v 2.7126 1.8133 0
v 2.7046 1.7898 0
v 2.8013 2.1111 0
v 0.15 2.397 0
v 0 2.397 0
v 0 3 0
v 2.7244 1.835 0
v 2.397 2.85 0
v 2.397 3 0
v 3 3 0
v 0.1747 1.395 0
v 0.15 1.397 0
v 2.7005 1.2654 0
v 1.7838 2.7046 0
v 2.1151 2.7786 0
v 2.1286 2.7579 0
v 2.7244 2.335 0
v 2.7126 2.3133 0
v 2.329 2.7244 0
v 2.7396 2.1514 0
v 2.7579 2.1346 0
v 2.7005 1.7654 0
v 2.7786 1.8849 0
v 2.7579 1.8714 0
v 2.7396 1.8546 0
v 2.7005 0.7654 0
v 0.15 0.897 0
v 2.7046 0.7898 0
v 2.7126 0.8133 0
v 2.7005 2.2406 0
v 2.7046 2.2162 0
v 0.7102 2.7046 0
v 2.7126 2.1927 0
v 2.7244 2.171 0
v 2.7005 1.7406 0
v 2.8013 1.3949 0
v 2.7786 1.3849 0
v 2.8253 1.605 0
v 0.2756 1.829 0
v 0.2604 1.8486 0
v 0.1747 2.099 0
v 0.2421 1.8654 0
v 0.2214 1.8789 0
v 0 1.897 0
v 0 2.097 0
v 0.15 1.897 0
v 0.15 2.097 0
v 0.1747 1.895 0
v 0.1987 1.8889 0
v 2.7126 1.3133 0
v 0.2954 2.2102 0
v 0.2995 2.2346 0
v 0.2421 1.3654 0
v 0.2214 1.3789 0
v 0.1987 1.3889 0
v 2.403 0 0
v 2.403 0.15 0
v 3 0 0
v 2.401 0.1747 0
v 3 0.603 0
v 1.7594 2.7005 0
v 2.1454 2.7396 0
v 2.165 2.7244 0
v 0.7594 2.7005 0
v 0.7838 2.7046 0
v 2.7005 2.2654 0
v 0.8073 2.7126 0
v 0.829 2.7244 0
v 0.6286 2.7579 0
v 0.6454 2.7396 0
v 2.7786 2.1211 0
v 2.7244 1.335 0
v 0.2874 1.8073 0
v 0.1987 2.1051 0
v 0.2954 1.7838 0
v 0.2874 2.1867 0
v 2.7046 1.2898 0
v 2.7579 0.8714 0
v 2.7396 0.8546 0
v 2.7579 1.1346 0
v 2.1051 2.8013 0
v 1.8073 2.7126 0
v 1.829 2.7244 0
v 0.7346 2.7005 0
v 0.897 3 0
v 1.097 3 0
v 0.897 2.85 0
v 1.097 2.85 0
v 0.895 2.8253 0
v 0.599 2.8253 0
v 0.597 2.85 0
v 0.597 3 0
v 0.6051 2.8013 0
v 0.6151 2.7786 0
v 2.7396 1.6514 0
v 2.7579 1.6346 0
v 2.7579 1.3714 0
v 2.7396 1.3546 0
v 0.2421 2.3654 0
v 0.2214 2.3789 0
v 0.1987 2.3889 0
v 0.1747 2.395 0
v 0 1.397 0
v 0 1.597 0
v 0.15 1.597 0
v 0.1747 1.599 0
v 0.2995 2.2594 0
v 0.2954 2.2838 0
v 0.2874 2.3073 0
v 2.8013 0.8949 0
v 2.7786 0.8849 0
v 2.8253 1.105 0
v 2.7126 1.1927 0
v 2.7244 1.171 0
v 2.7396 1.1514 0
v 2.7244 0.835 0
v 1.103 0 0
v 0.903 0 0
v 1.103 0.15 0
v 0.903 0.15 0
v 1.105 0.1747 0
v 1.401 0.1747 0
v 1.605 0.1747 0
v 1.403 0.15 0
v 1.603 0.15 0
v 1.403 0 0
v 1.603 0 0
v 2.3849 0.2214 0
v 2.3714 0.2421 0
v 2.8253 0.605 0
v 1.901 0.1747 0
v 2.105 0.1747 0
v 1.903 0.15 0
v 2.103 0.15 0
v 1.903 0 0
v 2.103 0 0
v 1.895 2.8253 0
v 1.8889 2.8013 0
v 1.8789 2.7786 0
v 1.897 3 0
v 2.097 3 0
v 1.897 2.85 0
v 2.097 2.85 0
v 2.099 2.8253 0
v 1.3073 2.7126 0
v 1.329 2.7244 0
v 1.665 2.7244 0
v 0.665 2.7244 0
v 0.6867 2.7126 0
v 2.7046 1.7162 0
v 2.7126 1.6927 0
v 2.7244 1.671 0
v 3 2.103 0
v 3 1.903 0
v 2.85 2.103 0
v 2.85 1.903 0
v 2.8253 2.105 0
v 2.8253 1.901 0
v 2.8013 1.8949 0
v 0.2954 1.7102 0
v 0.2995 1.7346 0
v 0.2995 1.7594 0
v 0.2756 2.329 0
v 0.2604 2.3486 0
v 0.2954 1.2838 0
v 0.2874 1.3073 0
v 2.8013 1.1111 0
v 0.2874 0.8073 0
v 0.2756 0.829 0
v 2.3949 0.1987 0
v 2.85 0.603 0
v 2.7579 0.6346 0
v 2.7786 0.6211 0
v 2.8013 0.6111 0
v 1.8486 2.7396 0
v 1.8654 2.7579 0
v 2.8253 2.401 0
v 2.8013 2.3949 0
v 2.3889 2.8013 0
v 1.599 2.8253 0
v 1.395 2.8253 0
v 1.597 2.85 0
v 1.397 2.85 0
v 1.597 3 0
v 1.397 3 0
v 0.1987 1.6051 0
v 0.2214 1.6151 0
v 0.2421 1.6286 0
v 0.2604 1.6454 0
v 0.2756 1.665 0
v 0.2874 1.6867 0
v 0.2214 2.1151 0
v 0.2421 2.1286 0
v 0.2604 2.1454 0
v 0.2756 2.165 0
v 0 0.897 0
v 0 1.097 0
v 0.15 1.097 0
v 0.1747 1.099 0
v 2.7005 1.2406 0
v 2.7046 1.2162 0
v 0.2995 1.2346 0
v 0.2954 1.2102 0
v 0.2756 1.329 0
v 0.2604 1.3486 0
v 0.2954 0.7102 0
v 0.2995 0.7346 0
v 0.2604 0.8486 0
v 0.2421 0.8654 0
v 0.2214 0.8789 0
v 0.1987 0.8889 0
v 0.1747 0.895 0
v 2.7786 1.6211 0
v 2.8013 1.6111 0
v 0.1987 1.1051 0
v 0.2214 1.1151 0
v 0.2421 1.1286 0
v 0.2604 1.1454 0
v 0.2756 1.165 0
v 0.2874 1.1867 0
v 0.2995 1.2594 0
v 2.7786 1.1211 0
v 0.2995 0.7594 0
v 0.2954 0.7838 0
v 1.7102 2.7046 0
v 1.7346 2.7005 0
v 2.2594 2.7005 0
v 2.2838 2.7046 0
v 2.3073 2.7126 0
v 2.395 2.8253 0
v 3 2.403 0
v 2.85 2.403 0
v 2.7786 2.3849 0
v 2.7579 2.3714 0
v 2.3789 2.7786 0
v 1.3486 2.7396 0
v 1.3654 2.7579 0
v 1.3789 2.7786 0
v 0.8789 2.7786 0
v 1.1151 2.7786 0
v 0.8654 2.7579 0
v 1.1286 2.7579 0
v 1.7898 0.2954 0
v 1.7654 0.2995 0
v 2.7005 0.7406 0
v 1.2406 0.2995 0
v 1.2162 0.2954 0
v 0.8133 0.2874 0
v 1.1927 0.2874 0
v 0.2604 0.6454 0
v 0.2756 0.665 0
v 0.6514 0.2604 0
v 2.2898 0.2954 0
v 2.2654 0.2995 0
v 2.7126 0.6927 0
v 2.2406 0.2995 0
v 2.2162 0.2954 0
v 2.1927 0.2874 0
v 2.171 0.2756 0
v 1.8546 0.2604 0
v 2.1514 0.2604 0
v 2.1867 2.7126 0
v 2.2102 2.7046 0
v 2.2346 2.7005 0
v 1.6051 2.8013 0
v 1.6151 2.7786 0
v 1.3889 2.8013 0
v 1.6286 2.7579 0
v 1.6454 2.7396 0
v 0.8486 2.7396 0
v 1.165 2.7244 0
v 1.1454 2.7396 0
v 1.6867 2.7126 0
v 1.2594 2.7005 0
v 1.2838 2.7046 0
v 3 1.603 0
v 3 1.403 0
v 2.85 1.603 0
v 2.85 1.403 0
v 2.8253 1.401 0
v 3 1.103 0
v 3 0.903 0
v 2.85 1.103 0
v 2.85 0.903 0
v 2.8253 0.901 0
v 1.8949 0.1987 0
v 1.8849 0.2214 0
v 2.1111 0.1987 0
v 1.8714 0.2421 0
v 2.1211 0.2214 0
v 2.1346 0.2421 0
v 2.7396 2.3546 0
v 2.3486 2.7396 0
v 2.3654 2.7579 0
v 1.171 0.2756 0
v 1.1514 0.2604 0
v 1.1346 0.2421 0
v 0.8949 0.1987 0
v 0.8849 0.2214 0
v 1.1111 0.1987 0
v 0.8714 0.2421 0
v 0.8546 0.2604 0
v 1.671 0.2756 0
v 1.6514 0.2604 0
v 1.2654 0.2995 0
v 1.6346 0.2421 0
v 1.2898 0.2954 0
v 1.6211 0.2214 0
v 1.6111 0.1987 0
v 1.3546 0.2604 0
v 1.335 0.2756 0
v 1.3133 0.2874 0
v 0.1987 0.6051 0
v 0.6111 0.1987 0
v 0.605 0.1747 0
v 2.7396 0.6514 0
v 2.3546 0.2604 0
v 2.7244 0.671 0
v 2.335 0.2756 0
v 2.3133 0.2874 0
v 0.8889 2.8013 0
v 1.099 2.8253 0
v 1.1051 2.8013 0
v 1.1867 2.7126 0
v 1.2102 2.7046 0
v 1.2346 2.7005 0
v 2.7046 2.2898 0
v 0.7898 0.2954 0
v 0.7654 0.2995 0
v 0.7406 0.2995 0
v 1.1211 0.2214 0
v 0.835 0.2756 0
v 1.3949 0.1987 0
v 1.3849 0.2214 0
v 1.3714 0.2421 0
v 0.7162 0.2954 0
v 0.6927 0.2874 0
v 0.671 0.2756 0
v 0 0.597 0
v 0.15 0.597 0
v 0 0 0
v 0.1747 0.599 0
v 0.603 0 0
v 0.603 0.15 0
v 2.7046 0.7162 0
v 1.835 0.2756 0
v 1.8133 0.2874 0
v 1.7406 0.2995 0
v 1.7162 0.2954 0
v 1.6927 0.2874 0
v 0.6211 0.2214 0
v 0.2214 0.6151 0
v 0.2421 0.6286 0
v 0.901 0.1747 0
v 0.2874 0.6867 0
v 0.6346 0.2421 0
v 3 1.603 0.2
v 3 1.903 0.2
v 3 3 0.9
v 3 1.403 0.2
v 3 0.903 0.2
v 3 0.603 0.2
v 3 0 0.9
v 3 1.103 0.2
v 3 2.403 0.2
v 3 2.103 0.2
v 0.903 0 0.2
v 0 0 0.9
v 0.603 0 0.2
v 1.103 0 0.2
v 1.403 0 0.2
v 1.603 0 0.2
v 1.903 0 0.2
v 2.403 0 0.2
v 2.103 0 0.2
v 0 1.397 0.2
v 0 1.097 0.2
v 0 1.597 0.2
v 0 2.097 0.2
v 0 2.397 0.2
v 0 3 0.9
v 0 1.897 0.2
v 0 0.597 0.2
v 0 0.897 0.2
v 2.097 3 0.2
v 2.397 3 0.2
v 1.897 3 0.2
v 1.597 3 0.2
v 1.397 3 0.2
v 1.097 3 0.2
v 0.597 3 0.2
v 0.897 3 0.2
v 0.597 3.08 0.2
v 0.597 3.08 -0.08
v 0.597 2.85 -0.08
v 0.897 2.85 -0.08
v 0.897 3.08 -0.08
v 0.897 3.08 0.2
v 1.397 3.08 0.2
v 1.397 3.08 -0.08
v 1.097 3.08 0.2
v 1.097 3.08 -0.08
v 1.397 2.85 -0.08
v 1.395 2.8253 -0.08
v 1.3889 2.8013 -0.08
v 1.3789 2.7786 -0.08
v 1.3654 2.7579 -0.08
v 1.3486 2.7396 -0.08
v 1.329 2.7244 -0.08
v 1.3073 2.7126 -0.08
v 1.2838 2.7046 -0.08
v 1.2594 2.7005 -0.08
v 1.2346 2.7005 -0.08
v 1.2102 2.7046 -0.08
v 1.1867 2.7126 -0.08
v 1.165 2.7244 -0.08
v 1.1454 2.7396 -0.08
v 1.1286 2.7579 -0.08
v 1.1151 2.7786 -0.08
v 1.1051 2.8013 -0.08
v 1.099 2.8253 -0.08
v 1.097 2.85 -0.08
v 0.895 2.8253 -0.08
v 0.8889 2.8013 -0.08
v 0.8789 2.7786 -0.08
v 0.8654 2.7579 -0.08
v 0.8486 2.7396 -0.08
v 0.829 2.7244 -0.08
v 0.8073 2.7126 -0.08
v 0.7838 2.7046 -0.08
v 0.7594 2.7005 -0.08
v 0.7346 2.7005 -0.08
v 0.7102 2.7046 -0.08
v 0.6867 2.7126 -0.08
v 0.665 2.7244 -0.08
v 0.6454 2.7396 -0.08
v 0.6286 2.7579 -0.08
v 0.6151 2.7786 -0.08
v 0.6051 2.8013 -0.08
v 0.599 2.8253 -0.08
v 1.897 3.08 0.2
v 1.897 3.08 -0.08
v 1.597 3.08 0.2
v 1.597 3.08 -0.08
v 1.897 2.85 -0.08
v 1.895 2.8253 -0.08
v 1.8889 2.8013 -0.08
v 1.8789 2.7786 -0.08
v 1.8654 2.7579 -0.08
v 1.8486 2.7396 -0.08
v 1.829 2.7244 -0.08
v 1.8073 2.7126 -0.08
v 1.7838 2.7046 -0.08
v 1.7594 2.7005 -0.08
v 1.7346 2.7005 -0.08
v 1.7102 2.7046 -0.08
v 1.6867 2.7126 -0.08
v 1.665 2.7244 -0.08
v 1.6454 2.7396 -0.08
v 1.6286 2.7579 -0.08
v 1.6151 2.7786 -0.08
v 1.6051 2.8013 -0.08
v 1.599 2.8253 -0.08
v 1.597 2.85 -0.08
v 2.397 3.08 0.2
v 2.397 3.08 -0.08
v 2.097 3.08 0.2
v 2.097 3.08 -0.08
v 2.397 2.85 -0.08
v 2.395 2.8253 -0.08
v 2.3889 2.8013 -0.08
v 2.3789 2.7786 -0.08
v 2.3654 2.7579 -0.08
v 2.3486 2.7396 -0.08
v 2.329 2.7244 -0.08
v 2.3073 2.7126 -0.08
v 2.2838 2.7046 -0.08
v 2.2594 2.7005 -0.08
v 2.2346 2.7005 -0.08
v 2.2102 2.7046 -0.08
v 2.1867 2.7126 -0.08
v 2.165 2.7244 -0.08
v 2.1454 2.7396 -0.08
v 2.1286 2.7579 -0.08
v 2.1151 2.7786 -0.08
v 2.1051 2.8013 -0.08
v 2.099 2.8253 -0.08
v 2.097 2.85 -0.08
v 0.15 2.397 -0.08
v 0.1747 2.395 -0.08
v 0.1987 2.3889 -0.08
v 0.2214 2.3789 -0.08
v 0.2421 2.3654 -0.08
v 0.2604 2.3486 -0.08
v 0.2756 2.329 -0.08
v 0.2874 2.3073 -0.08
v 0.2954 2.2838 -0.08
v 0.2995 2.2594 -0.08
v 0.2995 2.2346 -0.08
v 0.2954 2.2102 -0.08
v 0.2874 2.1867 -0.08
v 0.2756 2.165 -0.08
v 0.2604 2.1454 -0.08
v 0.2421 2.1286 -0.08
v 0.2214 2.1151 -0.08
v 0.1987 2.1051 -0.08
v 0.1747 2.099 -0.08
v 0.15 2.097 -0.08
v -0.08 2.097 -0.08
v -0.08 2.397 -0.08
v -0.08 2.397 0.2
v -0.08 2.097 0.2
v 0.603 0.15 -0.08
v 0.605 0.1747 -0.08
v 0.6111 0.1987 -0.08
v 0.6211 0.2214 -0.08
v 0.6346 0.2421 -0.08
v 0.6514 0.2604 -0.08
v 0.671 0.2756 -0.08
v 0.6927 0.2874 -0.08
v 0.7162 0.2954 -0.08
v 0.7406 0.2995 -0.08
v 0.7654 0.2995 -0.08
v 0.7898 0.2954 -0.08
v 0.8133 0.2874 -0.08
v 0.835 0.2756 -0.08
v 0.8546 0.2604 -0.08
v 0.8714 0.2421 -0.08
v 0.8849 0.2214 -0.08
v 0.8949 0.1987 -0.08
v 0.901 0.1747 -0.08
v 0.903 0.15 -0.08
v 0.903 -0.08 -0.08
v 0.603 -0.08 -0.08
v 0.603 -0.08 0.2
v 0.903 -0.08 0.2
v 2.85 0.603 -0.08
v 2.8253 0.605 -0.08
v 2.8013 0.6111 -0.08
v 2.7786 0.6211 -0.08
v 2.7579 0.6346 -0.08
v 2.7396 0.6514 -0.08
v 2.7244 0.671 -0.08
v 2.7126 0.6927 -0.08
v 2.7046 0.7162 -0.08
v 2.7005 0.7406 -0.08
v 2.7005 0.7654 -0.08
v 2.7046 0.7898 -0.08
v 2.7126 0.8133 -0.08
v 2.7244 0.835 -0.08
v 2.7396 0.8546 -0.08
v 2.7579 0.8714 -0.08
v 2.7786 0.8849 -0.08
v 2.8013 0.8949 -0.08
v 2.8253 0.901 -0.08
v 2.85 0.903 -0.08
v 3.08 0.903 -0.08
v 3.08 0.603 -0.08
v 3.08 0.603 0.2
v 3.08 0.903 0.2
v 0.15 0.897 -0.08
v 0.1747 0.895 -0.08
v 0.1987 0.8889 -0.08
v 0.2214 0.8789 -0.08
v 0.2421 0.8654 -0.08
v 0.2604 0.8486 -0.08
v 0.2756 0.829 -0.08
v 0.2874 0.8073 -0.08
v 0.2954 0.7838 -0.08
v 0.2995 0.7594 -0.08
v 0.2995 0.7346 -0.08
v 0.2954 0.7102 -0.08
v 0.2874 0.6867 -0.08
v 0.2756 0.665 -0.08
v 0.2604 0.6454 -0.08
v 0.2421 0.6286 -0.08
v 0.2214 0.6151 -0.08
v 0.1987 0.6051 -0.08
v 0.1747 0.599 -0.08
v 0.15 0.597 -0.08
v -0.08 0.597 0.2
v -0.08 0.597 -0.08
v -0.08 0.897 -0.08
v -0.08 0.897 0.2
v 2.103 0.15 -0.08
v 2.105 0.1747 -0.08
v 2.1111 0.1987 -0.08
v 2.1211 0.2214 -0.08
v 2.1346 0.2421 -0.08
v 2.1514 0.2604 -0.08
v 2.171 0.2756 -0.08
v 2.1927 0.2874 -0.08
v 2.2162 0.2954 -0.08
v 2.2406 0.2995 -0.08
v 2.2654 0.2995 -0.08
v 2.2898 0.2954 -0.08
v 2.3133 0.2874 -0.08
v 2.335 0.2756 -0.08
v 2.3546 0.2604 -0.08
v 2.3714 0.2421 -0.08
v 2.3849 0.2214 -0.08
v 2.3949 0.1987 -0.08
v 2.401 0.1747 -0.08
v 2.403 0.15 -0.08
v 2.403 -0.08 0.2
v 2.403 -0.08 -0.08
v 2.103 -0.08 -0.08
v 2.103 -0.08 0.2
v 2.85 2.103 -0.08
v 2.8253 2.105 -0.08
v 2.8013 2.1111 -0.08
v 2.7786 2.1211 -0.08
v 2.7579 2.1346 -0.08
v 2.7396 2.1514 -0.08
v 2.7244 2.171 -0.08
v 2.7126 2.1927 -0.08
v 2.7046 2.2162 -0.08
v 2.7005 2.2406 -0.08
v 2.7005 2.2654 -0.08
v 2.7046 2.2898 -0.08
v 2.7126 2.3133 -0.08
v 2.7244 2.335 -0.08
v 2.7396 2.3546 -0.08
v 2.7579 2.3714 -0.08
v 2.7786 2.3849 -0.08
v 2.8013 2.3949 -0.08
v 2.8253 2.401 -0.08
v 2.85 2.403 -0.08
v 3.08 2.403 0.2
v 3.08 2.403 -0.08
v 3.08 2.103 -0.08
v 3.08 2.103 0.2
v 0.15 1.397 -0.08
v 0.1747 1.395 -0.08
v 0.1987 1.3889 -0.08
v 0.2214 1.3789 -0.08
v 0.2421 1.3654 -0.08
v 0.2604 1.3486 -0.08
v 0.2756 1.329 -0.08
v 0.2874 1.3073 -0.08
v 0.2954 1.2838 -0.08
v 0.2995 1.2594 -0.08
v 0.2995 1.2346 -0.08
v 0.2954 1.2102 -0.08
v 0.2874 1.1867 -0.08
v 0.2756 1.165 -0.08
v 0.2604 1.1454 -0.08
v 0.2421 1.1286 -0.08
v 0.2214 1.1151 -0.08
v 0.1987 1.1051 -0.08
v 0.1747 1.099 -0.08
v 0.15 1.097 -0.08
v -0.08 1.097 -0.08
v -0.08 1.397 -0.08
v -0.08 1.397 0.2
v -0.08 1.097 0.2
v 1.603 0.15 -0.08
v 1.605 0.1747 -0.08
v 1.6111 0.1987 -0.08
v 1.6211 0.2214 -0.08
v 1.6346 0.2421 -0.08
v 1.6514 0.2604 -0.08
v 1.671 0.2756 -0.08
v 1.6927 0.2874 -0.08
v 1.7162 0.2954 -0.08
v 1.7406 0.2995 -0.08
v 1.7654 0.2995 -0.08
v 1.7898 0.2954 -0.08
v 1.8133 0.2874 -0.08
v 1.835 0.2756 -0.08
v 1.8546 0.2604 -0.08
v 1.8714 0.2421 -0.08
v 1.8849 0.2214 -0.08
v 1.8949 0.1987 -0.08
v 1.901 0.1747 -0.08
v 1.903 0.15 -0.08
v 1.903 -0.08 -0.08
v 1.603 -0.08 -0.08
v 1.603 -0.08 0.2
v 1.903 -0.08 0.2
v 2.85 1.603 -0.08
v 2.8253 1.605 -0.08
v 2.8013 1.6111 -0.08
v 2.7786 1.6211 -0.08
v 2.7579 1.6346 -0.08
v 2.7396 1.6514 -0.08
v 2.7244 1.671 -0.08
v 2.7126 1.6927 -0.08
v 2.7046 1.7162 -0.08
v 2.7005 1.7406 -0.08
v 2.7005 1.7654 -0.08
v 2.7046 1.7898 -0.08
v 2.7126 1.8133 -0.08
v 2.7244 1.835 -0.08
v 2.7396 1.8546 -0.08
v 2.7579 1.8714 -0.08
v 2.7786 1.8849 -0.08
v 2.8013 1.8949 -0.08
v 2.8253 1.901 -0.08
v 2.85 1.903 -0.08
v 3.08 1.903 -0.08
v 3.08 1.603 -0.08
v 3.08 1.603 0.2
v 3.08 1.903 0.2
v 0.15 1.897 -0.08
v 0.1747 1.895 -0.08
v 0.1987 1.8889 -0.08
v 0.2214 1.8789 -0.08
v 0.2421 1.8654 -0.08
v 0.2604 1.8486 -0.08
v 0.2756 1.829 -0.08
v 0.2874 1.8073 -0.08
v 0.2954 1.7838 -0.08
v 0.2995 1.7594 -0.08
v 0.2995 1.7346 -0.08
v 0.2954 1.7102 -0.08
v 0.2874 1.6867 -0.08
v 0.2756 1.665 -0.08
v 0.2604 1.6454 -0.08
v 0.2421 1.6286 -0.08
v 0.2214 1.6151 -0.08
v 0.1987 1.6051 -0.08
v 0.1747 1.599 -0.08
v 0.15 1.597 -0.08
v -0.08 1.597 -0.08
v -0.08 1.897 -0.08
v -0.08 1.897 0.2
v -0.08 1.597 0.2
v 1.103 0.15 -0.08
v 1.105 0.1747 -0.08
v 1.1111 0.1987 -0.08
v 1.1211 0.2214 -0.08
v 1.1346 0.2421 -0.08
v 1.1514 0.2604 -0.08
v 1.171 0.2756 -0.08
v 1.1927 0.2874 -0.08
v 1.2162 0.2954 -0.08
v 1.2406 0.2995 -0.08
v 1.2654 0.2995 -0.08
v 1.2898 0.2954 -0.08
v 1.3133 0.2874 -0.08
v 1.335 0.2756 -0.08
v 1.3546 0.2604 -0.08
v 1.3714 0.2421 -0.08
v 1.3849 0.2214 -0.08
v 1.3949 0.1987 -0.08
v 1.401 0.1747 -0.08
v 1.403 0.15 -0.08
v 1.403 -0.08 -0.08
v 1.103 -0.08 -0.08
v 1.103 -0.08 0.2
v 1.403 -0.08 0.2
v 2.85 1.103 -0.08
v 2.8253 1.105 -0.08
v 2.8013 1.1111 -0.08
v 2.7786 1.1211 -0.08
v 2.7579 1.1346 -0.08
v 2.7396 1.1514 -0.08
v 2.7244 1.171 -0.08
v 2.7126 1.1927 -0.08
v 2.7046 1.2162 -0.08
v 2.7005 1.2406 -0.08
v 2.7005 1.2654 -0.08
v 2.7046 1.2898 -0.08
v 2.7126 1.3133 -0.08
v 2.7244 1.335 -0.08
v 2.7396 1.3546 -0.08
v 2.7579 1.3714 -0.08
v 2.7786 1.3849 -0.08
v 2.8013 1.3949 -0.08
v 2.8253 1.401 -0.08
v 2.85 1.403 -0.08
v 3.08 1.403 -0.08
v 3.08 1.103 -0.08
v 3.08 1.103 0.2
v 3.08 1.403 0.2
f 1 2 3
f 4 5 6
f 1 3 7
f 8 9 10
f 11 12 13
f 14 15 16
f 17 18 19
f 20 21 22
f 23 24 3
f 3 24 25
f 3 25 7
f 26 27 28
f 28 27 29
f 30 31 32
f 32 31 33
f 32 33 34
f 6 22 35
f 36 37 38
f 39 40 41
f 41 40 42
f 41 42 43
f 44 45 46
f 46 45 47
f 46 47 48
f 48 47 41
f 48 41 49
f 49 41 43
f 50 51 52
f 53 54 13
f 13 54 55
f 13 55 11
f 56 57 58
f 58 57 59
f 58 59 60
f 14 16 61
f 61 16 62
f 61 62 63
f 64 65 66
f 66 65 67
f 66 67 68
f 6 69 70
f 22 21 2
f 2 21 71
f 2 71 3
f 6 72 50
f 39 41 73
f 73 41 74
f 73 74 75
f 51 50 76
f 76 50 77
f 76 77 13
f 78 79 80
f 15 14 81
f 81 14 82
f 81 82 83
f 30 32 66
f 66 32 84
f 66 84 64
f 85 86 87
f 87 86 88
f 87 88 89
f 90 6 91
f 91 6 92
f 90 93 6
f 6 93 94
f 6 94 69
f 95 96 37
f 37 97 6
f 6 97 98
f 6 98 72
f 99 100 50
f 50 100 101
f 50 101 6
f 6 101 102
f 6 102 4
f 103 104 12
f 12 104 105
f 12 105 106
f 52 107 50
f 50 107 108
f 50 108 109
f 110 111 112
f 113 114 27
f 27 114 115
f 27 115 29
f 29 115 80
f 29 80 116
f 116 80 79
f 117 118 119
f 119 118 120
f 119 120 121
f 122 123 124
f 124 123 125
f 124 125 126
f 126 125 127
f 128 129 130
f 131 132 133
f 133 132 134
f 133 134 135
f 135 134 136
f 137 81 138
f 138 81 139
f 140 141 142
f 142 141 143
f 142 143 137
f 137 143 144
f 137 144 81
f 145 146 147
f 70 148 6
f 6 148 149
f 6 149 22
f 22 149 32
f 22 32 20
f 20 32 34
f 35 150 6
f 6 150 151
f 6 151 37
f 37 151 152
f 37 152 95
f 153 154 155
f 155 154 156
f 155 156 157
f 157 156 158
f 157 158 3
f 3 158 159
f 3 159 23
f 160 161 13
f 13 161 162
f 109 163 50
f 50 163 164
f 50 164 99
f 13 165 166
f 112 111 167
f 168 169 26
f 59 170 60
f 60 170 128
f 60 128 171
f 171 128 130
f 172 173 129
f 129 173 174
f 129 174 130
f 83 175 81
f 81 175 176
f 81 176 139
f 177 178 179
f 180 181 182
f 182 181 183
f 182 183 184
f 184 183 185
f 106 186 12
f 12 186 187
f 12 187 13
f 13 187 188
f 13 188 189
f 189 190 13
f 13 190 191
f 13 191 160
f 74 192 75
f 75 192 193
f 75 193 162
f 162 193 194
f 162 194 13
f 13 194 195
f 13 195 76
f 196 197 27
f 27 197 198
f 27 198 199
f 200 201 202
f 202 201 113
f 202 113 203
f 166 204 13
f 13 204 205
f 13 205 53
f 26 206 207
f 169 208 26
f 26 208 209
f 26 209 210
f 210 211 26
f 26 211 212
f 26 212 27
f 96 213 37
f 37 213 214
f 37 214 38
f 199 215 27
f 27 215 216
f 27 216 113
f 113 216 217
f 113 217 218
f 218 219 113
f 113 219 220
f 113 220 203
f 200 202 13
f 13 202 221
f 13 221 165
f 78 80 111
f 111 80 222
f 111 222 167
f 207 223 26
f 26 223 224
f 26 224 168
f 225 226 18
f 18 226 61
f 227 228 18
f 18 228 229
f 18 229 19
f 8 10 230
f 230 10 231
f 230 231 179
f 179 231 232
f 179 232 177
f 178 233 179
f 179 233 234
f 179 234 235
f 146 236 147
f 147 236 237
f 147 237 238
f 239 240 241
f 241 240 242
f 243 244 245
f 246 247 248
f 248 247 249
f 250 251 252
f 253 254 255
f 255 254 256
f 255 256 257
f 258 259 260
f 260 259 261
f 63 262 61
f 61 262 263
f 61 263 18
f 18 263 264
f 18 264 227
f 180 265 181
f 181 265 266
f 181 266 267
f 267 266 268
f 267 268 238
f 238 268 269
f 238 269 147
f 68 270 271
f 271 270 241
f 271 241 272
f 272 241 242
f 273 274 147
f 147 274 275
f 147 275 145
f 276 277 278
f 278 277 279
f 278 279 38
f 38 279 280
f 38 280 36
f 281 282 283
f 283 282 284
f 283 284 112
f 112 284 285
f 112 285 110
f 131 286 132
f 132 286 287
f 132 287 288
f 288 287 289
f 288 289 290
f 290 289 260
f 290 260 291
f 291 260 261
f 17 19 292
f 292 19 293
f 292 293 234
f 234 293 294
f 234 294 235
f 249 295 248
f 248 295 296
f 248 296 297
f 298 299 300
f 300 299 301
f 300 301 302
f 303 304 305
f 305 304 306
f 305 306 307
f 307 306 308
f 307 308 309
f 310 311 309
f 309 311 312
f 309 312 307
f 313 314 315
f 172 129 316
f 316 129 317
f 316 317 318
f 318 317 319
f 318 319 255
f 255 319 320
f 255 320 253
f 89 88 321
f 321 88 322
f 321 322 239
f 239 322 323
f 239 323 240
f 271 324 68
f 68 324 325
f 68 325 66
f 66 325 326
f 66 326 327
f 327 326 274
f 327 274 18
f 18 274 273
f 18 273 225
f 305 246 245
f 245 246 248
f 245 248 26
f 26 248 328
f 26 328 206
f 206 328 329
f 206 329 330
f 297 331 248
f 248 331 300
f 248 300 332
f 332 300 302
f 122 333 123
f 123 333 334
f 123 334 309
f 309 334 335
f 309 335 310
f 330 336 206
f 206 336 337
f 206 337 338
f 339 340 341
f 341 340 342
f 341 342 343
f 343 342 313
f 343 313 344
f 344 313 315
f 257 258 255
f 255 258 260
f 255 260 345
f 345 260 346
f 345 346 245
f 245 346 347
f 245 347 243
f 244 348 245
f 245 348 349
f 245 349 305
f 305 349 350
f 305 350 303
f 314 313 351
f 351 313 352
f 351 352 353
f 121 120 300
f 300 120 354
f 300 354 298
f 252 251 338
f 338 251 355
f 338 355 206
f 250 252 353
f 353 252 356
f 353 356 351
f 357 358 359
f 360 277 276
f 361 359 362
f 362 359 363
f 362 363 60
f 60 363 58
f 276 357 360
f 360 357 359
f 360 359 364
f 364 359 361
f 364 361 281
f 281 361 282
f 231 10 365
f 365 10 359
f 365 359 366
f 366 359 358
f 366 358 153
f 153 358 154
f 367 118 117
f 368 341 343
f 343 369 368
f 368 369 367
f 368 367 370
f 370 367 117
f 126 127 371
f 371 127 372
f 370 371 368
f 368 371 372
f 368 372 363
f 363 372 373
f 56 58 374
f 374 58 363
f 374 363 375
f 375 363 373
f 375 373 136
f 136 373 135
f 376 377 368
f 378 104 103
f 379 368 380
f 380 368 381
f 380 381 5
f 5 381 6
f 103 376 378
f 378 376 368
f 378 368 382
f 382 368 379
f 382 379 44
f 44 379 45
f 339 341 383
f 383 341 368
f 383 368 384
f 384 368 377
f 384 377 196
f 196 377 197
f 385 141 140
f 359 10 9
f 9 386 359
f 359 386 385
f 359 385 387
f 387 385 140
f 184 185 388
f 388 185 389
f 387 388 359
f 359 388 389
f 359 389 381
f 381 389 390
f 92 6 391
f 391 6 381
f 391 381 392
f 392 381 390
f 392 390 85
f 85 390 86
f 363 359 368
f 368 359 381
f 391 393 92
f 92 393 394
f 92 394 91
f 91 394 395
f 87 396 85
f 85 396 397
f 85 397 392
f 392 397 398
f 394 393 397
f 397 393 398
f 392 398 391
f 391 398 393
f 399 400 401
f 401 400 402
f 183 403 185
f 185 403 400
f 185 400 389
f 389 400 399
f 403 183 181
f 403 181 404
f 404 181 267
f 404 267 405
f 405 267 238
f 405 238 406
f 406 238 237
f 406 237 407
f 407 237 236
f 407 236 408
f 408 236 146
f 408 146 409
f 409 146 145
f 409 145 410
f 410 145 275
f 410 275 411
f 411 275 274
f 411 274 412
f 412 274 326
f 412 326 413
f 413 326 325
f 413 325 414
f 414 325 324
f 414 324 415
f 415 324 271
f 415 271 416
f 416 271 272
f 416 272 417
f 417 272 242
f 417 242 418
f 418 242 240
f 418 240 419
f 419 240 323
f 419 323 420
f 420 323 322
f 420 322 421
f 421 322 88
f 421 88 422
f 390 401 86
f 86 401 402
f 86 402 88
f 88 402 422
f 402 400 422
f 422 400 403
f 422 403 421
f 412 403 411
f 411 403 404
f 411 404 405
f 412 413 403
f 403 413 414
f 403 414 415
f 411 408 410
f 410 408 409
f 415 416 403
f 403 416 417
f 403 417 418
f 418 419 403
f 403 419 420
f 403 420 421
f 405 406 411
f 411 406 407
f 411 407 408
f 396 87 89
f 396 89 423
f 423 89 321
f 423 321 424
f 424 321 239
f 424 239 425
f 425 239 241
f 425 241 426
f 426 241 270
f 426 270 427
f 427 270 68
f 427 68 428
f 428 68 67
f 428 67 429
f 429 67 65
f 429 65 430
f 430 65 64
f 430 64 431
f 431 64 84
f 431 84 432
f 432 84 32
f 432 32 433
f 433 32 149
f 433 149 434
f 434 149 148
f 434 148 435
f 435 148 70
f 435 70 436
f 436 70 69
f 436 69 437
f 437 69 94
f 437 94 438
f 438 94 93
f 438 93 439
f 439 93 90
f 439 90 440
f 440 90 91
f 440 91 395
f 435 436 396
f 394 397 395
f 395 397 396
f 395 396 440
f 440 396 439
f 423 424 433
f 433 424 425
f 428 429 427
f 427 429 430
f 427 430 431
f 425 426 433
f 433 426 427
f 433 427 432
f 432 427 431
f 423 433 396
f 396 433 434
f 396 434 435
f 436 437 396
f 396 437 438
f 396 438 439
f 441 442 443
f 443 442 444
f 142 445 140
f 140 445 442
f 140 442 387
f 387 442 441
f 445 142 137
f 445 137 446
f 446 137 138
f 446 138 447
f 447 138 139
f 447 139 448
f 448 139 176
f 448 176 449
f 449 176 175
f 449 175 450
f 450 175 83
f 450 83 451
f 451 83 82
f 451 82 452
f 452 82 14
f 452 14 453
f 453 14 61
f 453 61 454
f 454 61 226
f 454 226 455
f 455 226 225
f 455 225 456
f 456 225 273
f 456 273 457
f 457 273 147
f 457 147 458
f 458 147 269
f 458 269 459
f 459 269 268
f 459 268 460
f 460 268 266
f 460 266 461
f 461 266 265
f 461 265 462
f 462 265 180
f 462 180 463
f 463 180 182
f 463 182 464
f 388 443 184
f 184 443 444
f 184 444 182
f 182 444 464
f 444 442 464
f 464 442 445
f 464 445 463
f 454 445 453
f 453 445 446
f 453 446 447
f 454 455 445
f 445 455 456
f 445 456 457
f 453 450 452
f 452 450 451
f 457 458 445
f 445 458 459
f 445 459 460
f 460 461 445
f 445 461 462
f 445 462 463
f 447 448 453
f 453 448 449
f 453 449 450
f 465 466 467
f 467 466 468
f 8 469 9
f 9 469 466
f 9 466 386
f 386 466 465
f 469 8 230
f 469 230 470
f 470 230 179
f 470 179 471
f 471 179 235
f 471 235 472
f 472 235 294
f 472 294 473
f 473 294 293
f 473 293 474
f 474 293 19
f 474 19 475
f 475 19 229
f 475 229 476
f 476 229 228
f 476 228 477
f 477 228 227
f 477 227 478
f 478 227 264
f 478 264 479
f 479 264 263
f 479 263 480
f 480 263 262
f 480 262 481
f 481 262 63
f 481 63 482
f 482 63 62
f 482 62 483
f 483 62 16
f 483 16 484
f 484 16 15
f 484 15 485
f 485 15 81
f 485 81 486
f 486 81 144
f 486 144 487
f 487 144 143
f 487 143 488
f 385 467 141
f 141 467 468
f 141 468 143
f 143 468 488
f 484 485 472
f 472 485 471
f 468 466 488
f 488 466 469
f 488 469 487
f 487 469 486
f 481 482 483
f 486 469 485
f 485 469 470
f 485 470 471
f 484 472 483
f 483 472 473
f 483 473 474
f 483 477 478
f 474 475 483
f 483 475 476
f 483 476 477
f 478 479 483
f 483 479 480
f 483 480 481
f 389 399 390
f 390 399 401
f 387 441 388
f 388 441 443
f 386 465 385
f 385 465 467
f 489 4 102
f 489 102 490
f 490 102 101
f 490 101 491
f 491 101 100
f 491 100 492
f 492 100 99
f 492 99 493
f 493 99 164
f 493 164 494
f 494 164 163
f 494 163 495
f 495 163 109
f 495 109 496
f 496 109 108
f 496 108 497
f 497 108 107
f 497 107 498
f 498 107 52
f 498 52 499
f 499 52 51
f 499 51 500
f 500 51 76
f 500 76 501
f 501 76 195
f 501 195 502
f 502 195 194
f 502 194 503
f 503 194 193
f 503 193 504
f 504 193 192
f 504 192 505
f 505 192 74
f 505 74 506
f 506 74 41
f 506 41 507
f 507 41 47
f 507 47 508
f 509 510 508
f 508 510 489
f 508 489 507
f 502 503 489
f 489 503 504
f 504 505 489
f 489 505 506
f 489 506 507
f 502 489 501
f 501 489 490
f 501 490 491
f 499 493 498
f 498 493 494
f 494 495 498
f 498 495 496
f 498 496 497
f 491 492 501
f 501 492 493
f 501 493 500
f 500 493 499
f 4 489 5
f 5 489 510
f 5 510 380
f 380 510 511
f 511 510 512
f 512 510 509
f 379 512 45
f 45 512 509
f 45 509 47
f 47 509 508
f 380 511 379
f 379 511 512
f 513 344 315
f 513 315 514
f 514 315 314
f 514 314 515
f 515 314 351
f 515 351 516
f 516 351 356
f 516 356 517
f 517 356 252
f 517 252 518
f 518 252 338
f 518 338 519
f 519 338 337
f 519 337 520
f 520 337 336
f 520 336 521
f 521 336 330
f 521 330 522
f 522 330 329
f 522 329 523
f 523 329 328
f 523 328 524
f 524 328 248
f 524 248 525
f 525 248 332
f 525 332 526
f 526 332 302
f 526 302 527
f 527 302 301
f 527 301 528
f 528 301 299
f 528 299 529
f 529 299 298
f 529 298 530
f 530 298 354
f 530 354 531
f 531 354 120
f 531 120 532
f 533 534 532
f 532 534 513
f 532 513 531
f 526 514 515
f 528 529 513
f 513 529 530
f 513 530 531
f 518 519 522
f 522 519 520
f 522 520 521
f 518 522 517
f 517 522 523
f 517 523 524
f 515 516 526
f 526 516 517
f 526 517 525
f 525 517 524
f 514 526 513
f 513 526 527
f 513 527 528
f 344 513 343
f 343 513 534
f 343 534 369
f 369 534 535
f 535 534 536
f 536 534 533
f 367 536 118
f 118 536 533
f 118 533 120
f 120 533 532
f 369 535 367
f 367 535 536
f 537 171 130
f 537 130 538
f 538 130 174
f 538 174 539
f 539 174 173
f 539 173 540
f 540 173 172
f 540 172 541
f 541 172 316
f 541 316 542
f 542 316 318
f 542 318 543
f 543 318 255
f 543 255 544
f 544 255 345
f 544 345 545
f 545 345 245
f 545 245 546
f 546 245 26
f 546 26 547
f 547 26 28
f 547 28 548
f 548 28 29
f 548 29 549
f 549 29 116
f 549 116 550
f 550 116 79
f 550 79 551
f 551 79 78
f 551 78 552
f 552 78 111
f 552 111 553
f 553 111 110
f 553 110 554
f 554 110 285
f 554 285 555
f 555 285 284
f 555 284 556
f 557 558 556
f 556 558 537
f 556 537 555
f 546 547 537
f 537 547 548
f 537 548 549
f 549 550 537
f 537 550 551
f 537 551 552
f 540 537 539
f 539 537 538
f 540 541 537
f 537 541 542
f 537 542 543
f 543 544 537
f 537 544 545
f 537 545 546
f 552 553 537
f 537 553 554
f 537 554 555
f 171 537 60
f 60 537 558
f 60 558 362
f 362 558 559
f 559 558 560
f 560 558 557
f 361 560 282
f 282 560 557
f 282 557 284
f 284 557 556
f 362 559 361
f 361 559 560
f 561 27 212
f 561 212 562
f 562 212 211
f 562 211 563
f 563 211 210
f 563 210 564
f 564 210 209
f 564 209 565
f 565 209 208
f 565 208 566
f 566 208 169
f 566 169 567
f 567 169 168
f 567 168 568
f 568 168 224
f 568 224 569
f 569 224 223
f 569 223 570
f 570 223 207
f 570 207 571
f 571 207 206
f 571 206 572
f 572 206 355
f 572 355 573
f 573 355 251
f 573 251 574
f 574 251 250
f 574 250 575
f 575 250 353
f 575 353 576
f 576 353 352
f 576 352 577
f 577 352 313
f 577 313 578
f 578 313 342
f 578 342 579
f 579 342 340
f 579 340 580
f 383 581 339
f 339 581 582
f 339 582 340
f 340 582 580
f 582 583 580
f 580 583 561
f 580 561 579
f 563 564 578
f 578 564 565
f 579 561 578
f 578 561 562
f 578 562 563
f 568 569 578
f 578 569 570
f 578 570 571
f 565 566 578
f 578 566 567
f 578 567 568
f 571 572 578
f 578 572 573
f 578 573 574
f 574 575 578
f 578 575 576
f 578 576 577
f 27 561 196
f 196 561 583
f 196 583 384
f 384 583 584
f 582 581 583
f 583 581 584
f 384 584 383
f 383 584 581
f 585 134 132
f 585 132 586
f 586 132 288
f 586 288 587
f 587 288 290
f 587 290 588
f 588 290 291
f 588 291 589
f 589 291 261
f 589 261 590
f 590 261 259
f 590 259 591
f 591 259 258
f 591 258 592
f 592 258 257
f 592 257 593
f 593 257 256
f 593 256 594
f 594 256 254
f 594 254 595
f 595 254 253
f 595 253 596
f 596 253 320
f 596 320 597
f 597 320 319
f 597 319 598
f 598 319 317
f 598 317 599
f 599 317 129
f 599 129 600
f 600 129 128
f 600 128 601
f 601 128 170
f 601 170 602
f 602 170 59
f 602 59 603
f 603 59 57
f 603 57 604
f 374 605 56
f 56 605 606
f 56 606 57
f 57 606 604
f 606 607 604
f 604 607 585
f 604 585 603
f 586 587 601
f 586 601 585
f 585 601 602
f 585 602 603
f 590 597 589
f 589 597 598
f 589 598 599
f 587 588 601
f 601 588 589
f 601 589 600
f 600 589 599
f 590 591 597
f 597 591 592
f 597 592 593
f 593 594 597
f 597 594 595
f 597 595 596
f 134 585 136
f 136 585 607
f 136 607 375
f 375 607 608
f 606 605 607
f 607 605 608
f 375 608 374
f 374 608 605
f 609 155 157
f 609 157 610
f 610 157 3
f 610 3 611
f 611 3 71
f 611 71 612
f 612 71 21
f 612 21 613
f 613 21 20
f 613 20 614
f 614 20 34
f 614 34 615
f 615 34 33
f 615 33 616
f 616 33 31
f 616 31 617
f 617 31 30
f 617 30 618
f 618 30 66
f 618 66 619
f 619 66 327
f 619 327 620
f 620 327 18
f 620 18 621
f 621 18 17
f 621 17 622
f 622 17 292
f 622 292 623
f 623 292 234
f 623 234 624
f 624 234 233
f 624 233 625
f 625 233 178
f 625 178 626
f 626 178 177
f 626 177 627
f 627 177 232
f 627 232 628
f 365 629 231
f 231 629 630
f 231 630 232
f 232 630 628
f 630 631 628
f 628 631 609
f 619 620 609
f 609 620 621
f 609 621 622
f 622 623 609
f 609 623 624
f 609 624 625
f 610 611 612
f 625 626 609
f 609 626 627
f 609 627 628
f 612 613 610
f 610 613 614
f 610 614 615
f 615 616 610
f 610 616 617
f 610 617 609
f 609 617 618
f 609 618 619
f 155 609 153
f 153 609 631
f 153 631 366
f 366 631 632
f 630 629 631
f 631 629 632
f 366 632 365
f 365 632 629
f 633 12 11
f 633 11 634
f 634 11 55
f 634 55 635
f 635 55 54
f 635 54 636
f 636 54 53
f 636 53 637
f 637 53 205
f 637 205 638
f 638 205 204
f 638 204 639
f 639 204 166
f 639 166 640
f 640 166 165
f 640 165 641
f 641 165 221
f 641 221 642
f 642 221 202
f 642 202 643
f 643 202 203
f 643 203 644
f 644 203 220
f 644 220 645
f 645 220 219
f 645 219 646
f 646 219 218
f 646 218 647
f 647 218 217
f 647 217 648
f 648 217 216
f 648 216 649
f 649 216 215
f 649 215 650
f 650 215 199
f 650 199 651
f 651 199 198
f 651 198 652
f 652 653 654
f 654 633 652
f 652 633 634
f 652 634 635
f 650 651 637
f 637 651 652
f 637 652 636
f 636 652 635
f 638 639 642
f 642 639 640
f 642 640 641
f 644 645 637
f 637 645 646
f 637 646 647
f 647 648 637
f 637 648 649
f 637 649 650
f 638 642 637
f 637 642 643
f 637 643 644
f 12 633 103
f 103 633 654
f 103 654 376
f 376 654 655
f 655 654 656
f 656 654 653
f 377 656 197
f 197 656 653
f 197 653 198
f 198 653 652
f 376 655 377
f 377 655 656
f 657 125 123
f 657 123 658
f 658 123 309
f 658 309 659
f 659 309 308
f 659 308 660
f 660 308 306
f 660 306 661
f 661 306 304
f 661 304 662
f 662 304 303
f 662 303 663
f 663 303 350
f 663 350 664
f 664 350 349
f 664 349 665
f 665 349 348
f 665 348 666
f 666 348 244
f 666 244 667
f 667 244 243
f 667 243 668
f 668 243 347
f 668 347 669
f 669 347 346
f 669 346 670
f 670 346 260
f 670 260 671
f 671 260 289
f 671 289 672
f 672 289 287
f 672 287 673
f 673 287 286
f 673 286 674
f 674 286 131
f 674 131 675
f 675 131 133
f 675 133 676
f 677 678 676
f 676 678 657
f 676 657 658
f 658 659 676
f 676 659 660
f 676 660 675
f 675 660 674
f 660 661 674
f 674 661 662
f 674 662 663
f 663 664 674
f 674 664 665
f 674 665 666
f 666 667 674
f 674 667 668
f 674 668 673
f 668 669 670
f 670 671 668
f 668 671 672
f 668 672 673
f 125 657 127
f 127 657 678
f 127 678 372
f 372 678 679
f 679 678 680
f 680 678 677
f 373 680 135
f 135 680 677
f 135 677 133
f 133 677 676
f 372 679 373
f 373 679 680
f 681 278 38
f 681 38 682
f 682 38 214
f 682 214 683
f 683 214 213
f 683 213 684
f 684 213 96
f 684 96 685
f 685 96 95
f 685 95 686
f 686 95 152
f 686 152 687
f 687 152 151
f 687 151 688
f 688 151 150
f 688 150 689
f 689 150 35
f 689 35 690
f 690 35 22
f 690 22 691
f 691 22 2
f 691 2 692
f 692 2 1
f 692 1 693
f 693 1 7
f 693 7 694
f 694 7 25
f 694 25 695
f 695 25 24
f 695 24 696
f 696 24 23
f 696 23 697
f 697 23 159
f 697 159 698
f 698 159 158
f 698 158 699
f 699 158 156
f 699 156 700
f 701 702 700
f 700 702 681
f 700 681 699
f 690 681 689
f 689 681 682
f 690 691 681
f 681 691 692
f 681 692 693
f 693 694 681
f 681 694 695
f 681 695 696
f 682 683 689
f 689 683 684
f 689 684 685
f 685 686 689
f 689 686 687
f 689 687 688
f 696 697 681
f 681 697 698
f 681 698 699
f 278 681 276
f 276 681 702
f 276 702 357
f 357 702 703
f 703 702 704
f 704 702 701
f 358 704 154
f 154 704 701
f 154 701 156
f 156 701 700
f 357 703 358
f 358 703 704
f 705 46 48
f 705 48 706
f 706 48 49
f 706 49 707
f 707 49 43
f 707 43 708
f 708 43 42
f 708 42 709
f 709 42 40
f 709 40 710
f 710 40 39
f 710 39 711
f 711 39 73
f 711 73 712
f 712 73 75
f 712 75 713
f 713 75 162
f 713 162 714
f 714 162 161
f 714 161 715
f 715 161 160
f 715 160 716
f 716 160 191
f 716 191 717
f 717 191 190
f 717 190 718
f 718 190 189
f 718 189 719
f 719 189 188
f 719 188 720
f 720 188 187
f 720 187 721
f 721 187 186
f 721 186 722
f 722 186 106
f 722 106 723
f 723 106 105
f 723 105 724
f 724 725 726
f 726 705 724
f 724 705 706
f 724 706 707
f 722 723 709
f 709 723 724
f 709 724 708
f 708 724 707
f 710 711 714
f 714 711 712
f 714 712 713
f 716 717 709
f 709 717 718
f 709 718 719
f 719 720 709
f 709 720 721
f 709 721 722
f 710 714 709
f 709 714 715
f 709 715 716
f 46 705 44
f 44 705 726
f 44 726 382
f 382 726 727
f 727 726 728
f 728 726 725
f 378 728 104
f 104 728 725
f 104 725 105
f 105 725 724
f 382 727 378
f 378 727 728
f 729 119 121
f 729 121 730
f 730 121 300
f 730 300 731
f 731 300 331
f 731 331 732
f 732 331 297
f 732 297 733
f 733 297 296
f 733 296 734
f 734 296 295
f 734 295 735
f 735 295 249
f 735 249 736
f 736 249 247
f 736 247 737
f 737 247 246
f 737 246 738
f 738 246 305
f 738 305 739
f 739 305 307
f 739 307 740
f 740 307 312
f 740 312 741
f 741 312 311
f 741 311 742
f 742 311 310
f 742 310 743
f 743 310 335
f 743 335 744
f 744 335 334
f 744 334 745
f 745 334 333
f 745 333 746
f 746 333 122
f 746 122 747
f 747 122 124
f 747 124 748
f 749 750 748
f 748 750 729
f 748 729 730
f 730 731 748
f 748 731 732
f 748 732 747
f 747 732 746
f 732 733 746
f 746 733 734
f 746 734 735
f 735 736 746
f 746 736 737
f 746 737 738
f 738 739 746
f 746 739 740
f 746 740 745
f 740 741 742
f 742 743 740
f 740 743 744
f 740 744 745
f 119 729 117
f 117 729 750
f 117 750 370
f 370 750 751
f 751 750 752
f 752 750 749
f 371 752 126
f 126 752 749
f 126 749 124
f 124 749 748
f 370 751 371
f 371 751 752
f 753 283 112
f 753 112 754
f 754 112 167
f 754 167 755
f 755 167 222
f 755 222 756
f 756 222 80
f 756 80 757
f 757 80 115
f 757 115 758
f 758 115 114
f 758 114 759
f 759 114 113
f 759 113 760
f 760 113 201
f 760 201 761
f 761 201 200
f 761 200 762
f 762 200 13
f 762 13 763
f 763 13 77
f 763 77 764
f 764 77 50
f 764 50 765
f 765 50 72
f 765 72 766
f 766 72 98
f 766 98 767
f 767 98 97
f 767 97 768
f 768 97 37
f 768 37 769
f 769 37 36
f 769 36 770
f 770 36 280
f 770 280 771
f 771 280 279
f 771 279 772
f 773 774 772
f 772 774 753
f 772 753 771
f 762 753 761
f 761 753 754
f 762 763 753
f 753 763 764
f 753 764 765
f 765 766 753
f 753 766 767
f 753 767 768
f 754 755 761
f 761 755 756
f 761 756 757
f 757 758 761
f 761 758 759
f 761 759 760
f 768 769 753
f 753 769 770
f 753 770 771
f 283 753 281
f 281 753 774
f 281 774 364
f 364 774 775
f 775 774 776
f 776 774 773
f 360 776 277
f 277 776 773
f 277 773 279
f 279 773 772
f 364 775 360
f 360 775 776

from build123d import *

# Parameters (mm, degrees)
SKETCH1_W             = 3
SKETCH1_H             = 3
BOSS_EXTRUDE1_DEPTH   = 0.9
BOSS_EXTRUDE2_DEPTH   = 0.08
BOSS_EXTRUDE2_2_DEPTH = 0.08
BOSS_EXTRUDE2_3_DEPTH = 0.08
BOSS_EXTRUDE2_4_DEPTH = 0.08
SKETCH3_W             = 0.3
SKETCH3_H             = 0.08
BOSS_EXTRUDE3_DEPTH   = 0.2
CIRPATTERN1_COUNT     = 4


with BuildPart() as part:
    # Sketch1 → Boss-Extrude1 (new body)
    with BuildSketch(Plane.XY):
        with Locations((1.5, 1.5)):
            Rectangle(SKETCH1_W, SKETCH1_H)
    extrude(amount=BOSS_EXTRUDE1_DEPTH)



with BuildPart() as body_2:
    # Sketch2 → Boss-Extrude2 (new body)
    with BuildSketch(Plane(origin=(0, 0, 0), x_dir=(-1, 0, 0), z_dir=(0, 0, -1))):
        with BuildLine():
            Line((-1.397, 3.08), (-1.097, 3.08))
            Line((-1.097, 3.08), (-1.097, 2.849999966))
            ThreePointArc((-1.097, 2.849999966), (-1.247, 2.7), (-1.397, 2.849999966))
            Line((-1.397, 2.849999966), (-1.397, 3.08))
        make_face()
    boss_extrude2 = extrude(amount=BOSS_EXTRUDE2_DEPTH)


with BuildPart() as body_3:
    # Sketch2 → Boss-Extrude2 2 (new body)
    with BuildSketch(Plane(origin=(0, 0, 0), x_dir=(-1, 0, 0), z_dir=(0, 0, -1))):
        with BuildLine():
            Line((-0.897, 3.08), (-0.597, 3.08))
            Line((-0.597, 3.08), (-0.597, 2.849999966))
            ThreePointArc((-0.597, 2.849999966), (-0.747, 2.7), (-0.897, 2.849999966))
            Line((-0.897, 2.849999966), (-0.897, 3.08))
        make_face()
    boss_extrude2_2 = extrude(amount=BOSS_EXTRUDE2_2_DEPTH)


with BuildPart() as body_4:
    # Sketch2 → Boss-Extrude2 3 (new body)
    with BuildSketch(Plane(origin=(0, 0, 0), x_dir=(-1, 0, 0), z_dir=(0, 0, -1))):
        with BuildLine():
            Line((-1.897, 3.08), (-1.597, 3.08))
            Line((-1.597, 3.08), (-1.597, 2.849999966))
            ThreePointArc((-1.597, 2.849999966), (-1.747, 2.7), (-1.897, 2.849999966))
            Line((-1.897, 2.849999966), (-1.897, 3.08))
        make_face()
    boss_extrude2_3 = extrude(amount=BOSS_EXTRUDE2_3_DEPTH)


with BuildPart() as body_5:
    # Sketch2 → Boss-Extrude2 4 (new body)
    with BuildSketch(Plane(origin=(0, 0, 0), x_dir=(-1, 0, 0), z_dir=(0, 0, -1))):
        with BuildLine():
            Line((-2.397, 3.08), (-2.097, 3.08))
            Line((-2.097, 3.08), (-2.097, 2.849999966))
            ThreePointArc((-2.097, 2.849999966), (-2.247, 2.7), (-2.397, 2.849999966))
            Line((-2.397, 2.849999966), (-2.397, 3.08))
        make_face()
    boss_extrude2_4 = extrude(amount=BOSS_EXTRUDE2_4_DEPTH)


with BuildPart() as part_1:
    add(part.part)

    add(body_2.part)  # Boss-Extrude3 merges body 2

    add(body_3.part)  # Boss-Extrude3 merges body 3

    add(body_4.part)  # Boss-Extrude3 merges body 4

    add(body_5.part)  # Boss-Extrude3 merges body 5
    # Sketch3 → Boss-Extrude3 (add)
    with BuildSketch(Plane.XY):
        with Locations((0.747, 3.04)):
            Rectangle(SKETCH3_W, SKETCH3_H)
        with Locations((1.247, 3.04)):
            Rectangle(SKETCH3_W, SKETCH3_H)
        with Locations((1.747, 3.04)):
            Rectangle(SKETCH3_W, SKETCH3_H)
        with Locations((2.247, 3.04)):
            Rectangle(SKETCH3_W, SKETCH3_H)
    boss_extrude3 = extrude(amount=BOSS_EXTRUDE3_DEPTH)

    # CirPattern1: Boss-Extrude2, Boss-Extrude2 2, Boss-Extrude2 3, Boss-Extrude2 4, Boss-Extrude3 ×4 about axis
    cirpattern1_axis = Axis((1.5, 1.5, -0.045), (0, 0, 1))
    add([boss_extrude2.rotate(cirpattern1_axis, i * 360 / CIRPATTERN1_COUNT) for i in range(1, CIRPATTERN1_COUNT)])
    add([boss_extrude2_2.rotate(cirpattern1_axis, i * 360 / CIRPATTERN1_COUNT) for i in range(1, CIRPATTERN1_COUNT)])
    add([boss_extrude2_3.rotate(cirpattern1_axis, i * 360 / CIRPATTERN1_COUNT) for i in range(1, CIRPATTERN1_COUNT)])
    add([boss_extrude2_4.rotate(cirpattern1_axis, i * 360 / CIRPATTERN1_COUNT) for i in range(1, CIRPATTERN1_COUNT)])
    add([boss_extrude3.rotate(cirpattern1_axis, i * 360 / CIRPATTERN1_COUNT) for i in range(1, CIRPATTERN1_COUNT)])


solid = part_1.part
